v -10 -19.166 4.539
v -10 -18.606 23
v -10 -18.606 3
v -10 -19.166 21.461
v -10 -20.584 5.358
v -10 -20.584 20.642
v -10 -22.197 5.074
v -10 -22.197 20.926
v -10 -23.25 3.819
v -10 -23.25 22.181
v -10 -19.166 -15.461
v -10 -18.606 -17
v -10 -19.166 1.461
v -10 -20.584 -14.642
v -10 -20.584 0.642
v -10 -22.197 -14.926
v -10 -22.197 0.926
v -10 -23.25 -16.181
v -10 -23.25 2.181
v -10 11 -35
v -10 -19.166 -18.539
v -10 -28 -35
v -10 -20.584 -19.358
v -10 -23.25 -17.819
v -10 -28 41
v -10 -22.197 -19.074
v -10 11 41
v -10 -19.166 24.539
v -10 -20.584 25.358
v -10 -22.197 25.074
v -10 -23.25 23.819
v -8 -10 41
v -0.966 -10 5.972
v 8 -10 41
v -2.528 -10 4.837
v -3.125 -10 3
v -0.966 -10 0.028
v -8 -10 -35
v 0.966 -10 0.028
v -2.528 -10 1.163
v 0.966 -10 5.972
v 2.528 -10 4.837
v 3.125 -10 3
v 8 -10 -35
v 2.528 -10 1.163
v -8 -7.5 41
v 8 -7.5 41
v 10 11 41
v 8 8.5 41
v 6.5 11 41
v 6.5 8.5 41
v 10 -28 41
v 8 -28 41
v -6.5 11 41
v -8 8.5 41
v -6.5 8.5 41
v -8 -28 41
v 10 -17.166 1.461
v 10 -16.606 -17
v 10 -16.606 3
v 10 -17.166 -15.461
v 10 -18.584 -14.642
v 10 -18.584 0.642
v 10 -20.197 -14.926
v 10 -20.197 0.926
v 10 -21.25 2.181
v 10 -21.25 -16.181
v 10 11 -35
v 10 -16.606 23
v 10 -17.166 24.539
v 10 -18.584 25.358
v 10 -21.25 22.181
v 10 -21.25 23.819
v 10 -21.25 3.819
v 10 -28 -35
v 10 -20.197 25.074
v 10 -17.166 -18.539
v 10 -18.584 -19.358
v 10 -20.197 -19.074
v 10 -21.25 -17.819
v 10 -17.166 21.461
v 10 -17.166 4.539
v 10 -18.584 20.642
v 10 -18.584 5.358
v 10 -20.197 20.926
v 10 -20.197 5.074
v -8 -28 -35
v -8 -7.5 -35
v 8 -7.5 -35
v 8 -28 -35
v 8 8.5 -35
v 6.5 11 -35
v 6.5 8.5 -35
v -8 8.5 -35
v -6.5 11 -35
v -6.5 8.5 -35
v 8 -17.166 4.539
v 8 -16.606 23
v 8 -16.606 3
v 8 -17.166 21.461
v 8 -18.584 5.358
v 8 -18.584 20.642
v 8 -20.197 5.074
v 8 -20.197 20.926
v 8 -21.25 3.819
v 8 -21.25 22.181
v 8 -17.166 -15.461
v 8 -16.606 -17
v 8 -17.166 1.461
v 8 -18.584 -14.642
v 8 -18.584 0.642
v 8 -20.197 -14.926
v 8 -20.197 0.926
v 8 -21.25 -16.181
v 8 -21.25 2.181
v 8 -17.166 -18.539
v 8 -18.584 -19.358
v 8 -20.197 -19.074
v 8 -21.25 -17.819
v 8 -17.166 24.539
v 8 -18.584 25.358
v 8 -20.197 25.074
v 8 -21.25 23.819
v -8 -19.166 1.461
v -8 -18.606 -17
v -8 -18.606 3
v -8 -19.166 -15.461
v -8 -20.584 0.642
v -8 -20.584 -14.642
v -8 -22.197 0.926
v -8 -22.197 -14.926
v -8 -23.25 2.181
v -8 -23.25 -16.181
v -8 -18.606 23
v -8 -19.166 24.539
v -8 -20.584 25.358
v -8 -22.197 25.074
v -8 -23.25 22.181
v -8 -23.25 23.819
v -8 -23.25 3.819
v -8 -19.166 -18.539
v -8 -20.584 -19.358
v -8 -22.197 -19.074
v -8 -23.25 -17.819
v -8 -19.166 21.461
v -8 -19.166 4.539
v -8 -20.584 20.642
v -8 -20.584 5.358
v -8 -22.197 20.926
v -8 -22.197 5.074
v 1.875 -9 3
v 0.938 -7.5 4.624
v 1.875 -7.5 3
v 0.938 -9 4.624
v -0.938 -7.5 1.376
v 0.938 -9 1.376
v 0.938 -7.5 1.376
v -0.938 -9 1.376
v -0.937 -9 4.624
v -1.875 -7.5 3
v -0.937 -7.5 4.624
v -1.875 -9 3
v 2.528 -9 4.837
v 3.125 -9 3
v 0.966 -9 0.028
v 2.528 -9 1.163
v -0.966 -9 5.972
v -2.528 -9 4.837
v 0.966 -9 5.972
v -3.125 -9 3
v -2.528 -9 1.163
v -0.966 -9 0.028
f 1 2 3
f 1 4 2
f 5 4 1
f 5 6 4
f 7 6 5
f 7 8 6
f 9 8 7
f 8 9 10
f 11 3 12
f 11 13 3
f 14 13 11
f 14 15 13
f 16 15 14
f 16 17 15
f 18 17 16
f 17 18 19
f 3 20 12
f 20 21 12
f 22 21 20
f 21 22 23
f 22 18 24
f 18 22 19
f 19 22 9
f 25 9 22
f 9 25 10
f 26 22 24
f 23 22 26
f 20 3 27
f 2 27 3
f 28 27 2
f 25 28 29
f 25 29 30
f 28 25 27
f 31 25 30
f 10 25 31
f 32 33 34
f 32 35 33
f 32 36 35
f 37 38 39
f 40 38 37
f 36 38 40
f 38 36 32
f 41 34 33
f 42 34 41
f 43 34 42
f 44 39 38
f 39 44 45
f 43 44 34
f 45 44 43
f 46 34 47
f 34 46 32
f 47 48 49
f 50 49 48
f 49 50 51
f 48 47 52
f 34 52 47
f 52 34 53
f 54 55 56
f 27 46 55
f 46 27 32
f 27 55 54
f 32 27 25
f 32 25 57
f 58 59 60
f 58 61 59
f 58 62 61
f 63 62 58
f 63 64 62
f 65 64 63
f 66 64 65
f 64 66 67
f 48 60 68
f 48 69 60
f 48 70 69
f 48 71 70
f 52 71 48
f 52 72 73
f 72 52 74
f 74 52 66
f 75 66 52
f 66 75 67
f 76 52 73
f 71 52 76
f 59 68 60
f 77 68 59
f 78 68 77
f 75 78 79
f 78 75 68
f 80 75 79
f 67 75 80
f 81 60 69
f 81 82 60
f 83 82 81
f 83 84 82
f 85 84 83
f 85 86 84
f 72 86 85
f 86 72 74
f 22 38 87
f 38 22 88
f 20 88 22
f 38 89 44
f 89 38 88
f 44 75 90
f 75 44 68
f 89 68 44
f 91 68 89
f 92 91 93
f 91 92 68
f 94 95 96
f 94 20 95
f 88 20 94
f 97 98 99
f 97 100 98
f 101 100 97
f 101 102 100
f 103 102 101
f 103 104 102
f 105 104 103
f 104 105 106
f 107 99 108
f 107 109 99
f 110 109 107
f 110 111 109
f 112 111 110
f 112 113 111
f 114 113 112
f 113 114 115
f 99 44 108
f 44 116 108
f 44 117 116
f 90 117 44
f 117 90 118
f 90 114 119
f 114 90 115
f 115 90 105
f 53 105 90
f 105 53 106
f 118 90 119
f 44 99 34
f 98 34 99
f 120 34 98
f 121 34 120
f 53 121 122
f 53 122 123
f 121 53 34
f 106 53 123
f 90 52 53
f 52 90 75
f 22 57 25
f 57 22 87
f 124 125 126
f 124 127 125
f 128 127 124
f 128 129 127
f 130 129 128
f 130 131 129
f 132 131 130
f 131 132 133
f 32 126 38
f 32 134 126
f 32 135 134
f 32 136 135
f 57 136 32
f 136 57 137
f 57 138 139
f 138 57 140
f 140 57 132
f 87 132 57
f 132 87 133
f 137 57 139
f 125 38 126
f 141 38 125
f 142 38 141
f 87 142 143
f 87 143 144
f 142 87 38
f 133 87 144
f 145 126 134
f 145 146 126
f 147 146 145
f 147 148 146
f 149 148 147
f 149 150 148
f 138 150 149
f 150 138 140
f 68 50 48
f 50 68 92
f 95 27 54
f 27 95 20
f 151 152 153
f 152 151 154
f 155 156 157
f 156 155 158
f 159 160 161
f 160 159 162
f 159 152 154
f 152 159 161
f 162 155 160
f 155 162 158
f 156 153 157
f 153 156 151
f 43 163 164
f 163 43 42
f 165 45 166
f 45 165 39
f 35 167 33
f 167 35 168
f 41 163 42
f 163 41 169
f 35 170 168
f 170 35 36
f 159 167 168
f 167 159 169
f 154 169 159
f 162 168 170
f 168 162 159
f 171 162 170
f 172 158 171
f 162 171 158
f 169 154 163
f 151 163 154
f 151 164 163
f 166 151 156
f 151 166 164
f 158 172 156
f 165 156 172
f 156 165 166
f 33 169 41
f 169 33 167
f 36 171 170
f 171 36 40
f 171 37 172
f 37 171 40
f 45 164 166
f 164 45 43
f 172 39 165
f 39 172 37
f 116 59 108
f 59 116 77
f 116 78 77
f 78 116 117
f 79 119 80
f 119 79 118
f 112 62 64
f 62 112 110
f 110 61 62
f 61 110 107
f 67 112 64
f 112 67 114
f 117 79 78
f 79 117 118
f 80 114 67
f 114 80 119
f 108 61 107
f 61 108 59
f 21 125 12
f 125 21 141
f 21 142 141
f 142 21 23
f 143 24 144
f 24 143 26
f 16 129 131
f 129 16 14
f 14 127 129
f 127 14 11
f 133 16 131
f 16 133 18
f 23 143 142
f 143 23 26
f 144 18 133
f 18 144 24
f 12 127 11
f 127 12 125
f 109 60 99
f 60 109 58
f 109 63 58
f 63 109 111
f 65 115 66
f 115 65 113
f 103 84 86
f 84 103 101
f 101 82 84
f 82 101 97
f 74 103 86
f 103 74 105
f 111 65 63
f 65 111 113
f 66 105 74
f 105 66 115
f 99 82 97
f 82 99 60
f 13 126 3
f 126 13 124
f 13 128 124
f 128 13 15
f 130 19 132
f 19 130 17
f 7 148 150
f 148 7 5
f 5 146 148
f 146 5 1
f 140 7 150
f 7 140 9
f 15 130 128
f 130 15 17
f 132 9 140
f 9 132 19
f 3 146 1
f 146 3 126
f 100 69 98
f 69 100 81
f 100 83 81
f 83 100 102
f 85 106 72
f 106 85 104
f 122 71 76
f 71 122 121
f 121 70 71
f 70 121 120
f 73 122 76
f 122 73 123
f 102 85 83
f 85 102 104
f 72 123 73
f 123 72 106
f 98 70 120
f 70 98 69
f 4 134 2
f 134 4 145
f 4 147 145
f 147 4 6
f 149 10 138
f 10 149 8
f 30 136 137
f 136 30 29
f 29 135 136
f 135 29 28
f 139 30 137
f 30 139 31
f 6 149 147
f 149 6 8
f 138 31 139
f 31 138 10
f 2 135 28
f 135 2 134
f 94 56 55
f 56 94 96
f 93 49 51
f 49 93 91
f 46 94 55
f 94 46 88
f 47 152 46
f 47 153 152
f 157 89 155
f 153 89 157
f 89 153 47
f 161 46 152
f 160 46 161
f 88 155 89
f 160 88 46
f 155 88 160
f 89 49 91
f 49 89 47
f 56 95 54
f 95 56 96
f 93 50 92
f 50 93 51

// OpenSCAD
// Openbeam Kossel Pro tool holder
// Mount for the included wera drivers
// License: CC1.0 Universal

plate_length = 76;
plate_height = 20;

plate_width  = 20;
plate_thickness = 2;

num_drills = 3;
inset_depth = 1.5;
drill_depth = 4;

wall_length = 19;

// Polyholes from: http://hydraraptor.blogspot.com/2011/02/polyholes.html
module polyhole(h, d) {
    n = max(round(2 * d),3);
    rotate([0,0,180])
        cylinder(h = h, r = (d / 2) / cos (180 / n), $fn = n);
}

module openbeam() {
    linear_extrude(rotate = 90, height = 100, center = true, convexity = 10) import (file = "openbeam.dxf");
}


module inset_drills(distance, drill_size, inset_depth) {
    translate([0, distance*20, -drill_depth]) cylinder(r=drill_size/2, h=drill_depth);
    translate([0, distance*20, -1]) cylinder(r=drill_size/1.2, h=inset_depth);
}

module plate() {
    difference() {
      union() {
        // Interface plate (to extrusion)
        cube([plate_thickness, plate_length, plate_height]);
        
        // Bottom plate (where driver shafts exit))
        cube([plate_width, plate_length, plate_thickness]);
          
        // Top plate (driver landing area)
        translate([19-wall_length, 0, plate_height-2]) cube([plate_width, plate_length, plate_thickness]);  
         
        // Top 'ceiling' wall  
        translate([-(wall_length), 0, 10]) cube([wall_length, plate_length, plate_height - 10]); 
          
        // Bottom 'floor' wall
        translate([-(wall_length), 0, 0]) cube([wall_length, plate_length, plate_height - 10]);    
      }
    
      // Mounting plate drills
      translate([2,  -2, 10]) rotate([0,90,0]) inset_drills(2, 3.75, 2);
      
      // Driver drills
      for ( i = [ 1 : num_drills ] ) {
        translate([11, -2, 2]) translate([0, i*20, -3]) polyhole(9, 4.5);
        translate([13, -2, 16]) translate([0, i*20, -3]) polyhole(9, 4.5);
      }
      
      // Beam connector
      translate([-(wall_length-2.5), 0, 2]) cube([(wall_length-3), plate_length, 16]);
      
      // Cutout at snap area
      #translate([-wall_length, 0, 3.5]) cube([2.5, plate_length, 13]);
    }
}

rotate([0, 90, 180]) {
    rotate([0, 0, 90]) translate([8, -35, -10]) plate();
    //rotate([0, 90, 180]) translate([0, 0, 0]) openbeam();
}
